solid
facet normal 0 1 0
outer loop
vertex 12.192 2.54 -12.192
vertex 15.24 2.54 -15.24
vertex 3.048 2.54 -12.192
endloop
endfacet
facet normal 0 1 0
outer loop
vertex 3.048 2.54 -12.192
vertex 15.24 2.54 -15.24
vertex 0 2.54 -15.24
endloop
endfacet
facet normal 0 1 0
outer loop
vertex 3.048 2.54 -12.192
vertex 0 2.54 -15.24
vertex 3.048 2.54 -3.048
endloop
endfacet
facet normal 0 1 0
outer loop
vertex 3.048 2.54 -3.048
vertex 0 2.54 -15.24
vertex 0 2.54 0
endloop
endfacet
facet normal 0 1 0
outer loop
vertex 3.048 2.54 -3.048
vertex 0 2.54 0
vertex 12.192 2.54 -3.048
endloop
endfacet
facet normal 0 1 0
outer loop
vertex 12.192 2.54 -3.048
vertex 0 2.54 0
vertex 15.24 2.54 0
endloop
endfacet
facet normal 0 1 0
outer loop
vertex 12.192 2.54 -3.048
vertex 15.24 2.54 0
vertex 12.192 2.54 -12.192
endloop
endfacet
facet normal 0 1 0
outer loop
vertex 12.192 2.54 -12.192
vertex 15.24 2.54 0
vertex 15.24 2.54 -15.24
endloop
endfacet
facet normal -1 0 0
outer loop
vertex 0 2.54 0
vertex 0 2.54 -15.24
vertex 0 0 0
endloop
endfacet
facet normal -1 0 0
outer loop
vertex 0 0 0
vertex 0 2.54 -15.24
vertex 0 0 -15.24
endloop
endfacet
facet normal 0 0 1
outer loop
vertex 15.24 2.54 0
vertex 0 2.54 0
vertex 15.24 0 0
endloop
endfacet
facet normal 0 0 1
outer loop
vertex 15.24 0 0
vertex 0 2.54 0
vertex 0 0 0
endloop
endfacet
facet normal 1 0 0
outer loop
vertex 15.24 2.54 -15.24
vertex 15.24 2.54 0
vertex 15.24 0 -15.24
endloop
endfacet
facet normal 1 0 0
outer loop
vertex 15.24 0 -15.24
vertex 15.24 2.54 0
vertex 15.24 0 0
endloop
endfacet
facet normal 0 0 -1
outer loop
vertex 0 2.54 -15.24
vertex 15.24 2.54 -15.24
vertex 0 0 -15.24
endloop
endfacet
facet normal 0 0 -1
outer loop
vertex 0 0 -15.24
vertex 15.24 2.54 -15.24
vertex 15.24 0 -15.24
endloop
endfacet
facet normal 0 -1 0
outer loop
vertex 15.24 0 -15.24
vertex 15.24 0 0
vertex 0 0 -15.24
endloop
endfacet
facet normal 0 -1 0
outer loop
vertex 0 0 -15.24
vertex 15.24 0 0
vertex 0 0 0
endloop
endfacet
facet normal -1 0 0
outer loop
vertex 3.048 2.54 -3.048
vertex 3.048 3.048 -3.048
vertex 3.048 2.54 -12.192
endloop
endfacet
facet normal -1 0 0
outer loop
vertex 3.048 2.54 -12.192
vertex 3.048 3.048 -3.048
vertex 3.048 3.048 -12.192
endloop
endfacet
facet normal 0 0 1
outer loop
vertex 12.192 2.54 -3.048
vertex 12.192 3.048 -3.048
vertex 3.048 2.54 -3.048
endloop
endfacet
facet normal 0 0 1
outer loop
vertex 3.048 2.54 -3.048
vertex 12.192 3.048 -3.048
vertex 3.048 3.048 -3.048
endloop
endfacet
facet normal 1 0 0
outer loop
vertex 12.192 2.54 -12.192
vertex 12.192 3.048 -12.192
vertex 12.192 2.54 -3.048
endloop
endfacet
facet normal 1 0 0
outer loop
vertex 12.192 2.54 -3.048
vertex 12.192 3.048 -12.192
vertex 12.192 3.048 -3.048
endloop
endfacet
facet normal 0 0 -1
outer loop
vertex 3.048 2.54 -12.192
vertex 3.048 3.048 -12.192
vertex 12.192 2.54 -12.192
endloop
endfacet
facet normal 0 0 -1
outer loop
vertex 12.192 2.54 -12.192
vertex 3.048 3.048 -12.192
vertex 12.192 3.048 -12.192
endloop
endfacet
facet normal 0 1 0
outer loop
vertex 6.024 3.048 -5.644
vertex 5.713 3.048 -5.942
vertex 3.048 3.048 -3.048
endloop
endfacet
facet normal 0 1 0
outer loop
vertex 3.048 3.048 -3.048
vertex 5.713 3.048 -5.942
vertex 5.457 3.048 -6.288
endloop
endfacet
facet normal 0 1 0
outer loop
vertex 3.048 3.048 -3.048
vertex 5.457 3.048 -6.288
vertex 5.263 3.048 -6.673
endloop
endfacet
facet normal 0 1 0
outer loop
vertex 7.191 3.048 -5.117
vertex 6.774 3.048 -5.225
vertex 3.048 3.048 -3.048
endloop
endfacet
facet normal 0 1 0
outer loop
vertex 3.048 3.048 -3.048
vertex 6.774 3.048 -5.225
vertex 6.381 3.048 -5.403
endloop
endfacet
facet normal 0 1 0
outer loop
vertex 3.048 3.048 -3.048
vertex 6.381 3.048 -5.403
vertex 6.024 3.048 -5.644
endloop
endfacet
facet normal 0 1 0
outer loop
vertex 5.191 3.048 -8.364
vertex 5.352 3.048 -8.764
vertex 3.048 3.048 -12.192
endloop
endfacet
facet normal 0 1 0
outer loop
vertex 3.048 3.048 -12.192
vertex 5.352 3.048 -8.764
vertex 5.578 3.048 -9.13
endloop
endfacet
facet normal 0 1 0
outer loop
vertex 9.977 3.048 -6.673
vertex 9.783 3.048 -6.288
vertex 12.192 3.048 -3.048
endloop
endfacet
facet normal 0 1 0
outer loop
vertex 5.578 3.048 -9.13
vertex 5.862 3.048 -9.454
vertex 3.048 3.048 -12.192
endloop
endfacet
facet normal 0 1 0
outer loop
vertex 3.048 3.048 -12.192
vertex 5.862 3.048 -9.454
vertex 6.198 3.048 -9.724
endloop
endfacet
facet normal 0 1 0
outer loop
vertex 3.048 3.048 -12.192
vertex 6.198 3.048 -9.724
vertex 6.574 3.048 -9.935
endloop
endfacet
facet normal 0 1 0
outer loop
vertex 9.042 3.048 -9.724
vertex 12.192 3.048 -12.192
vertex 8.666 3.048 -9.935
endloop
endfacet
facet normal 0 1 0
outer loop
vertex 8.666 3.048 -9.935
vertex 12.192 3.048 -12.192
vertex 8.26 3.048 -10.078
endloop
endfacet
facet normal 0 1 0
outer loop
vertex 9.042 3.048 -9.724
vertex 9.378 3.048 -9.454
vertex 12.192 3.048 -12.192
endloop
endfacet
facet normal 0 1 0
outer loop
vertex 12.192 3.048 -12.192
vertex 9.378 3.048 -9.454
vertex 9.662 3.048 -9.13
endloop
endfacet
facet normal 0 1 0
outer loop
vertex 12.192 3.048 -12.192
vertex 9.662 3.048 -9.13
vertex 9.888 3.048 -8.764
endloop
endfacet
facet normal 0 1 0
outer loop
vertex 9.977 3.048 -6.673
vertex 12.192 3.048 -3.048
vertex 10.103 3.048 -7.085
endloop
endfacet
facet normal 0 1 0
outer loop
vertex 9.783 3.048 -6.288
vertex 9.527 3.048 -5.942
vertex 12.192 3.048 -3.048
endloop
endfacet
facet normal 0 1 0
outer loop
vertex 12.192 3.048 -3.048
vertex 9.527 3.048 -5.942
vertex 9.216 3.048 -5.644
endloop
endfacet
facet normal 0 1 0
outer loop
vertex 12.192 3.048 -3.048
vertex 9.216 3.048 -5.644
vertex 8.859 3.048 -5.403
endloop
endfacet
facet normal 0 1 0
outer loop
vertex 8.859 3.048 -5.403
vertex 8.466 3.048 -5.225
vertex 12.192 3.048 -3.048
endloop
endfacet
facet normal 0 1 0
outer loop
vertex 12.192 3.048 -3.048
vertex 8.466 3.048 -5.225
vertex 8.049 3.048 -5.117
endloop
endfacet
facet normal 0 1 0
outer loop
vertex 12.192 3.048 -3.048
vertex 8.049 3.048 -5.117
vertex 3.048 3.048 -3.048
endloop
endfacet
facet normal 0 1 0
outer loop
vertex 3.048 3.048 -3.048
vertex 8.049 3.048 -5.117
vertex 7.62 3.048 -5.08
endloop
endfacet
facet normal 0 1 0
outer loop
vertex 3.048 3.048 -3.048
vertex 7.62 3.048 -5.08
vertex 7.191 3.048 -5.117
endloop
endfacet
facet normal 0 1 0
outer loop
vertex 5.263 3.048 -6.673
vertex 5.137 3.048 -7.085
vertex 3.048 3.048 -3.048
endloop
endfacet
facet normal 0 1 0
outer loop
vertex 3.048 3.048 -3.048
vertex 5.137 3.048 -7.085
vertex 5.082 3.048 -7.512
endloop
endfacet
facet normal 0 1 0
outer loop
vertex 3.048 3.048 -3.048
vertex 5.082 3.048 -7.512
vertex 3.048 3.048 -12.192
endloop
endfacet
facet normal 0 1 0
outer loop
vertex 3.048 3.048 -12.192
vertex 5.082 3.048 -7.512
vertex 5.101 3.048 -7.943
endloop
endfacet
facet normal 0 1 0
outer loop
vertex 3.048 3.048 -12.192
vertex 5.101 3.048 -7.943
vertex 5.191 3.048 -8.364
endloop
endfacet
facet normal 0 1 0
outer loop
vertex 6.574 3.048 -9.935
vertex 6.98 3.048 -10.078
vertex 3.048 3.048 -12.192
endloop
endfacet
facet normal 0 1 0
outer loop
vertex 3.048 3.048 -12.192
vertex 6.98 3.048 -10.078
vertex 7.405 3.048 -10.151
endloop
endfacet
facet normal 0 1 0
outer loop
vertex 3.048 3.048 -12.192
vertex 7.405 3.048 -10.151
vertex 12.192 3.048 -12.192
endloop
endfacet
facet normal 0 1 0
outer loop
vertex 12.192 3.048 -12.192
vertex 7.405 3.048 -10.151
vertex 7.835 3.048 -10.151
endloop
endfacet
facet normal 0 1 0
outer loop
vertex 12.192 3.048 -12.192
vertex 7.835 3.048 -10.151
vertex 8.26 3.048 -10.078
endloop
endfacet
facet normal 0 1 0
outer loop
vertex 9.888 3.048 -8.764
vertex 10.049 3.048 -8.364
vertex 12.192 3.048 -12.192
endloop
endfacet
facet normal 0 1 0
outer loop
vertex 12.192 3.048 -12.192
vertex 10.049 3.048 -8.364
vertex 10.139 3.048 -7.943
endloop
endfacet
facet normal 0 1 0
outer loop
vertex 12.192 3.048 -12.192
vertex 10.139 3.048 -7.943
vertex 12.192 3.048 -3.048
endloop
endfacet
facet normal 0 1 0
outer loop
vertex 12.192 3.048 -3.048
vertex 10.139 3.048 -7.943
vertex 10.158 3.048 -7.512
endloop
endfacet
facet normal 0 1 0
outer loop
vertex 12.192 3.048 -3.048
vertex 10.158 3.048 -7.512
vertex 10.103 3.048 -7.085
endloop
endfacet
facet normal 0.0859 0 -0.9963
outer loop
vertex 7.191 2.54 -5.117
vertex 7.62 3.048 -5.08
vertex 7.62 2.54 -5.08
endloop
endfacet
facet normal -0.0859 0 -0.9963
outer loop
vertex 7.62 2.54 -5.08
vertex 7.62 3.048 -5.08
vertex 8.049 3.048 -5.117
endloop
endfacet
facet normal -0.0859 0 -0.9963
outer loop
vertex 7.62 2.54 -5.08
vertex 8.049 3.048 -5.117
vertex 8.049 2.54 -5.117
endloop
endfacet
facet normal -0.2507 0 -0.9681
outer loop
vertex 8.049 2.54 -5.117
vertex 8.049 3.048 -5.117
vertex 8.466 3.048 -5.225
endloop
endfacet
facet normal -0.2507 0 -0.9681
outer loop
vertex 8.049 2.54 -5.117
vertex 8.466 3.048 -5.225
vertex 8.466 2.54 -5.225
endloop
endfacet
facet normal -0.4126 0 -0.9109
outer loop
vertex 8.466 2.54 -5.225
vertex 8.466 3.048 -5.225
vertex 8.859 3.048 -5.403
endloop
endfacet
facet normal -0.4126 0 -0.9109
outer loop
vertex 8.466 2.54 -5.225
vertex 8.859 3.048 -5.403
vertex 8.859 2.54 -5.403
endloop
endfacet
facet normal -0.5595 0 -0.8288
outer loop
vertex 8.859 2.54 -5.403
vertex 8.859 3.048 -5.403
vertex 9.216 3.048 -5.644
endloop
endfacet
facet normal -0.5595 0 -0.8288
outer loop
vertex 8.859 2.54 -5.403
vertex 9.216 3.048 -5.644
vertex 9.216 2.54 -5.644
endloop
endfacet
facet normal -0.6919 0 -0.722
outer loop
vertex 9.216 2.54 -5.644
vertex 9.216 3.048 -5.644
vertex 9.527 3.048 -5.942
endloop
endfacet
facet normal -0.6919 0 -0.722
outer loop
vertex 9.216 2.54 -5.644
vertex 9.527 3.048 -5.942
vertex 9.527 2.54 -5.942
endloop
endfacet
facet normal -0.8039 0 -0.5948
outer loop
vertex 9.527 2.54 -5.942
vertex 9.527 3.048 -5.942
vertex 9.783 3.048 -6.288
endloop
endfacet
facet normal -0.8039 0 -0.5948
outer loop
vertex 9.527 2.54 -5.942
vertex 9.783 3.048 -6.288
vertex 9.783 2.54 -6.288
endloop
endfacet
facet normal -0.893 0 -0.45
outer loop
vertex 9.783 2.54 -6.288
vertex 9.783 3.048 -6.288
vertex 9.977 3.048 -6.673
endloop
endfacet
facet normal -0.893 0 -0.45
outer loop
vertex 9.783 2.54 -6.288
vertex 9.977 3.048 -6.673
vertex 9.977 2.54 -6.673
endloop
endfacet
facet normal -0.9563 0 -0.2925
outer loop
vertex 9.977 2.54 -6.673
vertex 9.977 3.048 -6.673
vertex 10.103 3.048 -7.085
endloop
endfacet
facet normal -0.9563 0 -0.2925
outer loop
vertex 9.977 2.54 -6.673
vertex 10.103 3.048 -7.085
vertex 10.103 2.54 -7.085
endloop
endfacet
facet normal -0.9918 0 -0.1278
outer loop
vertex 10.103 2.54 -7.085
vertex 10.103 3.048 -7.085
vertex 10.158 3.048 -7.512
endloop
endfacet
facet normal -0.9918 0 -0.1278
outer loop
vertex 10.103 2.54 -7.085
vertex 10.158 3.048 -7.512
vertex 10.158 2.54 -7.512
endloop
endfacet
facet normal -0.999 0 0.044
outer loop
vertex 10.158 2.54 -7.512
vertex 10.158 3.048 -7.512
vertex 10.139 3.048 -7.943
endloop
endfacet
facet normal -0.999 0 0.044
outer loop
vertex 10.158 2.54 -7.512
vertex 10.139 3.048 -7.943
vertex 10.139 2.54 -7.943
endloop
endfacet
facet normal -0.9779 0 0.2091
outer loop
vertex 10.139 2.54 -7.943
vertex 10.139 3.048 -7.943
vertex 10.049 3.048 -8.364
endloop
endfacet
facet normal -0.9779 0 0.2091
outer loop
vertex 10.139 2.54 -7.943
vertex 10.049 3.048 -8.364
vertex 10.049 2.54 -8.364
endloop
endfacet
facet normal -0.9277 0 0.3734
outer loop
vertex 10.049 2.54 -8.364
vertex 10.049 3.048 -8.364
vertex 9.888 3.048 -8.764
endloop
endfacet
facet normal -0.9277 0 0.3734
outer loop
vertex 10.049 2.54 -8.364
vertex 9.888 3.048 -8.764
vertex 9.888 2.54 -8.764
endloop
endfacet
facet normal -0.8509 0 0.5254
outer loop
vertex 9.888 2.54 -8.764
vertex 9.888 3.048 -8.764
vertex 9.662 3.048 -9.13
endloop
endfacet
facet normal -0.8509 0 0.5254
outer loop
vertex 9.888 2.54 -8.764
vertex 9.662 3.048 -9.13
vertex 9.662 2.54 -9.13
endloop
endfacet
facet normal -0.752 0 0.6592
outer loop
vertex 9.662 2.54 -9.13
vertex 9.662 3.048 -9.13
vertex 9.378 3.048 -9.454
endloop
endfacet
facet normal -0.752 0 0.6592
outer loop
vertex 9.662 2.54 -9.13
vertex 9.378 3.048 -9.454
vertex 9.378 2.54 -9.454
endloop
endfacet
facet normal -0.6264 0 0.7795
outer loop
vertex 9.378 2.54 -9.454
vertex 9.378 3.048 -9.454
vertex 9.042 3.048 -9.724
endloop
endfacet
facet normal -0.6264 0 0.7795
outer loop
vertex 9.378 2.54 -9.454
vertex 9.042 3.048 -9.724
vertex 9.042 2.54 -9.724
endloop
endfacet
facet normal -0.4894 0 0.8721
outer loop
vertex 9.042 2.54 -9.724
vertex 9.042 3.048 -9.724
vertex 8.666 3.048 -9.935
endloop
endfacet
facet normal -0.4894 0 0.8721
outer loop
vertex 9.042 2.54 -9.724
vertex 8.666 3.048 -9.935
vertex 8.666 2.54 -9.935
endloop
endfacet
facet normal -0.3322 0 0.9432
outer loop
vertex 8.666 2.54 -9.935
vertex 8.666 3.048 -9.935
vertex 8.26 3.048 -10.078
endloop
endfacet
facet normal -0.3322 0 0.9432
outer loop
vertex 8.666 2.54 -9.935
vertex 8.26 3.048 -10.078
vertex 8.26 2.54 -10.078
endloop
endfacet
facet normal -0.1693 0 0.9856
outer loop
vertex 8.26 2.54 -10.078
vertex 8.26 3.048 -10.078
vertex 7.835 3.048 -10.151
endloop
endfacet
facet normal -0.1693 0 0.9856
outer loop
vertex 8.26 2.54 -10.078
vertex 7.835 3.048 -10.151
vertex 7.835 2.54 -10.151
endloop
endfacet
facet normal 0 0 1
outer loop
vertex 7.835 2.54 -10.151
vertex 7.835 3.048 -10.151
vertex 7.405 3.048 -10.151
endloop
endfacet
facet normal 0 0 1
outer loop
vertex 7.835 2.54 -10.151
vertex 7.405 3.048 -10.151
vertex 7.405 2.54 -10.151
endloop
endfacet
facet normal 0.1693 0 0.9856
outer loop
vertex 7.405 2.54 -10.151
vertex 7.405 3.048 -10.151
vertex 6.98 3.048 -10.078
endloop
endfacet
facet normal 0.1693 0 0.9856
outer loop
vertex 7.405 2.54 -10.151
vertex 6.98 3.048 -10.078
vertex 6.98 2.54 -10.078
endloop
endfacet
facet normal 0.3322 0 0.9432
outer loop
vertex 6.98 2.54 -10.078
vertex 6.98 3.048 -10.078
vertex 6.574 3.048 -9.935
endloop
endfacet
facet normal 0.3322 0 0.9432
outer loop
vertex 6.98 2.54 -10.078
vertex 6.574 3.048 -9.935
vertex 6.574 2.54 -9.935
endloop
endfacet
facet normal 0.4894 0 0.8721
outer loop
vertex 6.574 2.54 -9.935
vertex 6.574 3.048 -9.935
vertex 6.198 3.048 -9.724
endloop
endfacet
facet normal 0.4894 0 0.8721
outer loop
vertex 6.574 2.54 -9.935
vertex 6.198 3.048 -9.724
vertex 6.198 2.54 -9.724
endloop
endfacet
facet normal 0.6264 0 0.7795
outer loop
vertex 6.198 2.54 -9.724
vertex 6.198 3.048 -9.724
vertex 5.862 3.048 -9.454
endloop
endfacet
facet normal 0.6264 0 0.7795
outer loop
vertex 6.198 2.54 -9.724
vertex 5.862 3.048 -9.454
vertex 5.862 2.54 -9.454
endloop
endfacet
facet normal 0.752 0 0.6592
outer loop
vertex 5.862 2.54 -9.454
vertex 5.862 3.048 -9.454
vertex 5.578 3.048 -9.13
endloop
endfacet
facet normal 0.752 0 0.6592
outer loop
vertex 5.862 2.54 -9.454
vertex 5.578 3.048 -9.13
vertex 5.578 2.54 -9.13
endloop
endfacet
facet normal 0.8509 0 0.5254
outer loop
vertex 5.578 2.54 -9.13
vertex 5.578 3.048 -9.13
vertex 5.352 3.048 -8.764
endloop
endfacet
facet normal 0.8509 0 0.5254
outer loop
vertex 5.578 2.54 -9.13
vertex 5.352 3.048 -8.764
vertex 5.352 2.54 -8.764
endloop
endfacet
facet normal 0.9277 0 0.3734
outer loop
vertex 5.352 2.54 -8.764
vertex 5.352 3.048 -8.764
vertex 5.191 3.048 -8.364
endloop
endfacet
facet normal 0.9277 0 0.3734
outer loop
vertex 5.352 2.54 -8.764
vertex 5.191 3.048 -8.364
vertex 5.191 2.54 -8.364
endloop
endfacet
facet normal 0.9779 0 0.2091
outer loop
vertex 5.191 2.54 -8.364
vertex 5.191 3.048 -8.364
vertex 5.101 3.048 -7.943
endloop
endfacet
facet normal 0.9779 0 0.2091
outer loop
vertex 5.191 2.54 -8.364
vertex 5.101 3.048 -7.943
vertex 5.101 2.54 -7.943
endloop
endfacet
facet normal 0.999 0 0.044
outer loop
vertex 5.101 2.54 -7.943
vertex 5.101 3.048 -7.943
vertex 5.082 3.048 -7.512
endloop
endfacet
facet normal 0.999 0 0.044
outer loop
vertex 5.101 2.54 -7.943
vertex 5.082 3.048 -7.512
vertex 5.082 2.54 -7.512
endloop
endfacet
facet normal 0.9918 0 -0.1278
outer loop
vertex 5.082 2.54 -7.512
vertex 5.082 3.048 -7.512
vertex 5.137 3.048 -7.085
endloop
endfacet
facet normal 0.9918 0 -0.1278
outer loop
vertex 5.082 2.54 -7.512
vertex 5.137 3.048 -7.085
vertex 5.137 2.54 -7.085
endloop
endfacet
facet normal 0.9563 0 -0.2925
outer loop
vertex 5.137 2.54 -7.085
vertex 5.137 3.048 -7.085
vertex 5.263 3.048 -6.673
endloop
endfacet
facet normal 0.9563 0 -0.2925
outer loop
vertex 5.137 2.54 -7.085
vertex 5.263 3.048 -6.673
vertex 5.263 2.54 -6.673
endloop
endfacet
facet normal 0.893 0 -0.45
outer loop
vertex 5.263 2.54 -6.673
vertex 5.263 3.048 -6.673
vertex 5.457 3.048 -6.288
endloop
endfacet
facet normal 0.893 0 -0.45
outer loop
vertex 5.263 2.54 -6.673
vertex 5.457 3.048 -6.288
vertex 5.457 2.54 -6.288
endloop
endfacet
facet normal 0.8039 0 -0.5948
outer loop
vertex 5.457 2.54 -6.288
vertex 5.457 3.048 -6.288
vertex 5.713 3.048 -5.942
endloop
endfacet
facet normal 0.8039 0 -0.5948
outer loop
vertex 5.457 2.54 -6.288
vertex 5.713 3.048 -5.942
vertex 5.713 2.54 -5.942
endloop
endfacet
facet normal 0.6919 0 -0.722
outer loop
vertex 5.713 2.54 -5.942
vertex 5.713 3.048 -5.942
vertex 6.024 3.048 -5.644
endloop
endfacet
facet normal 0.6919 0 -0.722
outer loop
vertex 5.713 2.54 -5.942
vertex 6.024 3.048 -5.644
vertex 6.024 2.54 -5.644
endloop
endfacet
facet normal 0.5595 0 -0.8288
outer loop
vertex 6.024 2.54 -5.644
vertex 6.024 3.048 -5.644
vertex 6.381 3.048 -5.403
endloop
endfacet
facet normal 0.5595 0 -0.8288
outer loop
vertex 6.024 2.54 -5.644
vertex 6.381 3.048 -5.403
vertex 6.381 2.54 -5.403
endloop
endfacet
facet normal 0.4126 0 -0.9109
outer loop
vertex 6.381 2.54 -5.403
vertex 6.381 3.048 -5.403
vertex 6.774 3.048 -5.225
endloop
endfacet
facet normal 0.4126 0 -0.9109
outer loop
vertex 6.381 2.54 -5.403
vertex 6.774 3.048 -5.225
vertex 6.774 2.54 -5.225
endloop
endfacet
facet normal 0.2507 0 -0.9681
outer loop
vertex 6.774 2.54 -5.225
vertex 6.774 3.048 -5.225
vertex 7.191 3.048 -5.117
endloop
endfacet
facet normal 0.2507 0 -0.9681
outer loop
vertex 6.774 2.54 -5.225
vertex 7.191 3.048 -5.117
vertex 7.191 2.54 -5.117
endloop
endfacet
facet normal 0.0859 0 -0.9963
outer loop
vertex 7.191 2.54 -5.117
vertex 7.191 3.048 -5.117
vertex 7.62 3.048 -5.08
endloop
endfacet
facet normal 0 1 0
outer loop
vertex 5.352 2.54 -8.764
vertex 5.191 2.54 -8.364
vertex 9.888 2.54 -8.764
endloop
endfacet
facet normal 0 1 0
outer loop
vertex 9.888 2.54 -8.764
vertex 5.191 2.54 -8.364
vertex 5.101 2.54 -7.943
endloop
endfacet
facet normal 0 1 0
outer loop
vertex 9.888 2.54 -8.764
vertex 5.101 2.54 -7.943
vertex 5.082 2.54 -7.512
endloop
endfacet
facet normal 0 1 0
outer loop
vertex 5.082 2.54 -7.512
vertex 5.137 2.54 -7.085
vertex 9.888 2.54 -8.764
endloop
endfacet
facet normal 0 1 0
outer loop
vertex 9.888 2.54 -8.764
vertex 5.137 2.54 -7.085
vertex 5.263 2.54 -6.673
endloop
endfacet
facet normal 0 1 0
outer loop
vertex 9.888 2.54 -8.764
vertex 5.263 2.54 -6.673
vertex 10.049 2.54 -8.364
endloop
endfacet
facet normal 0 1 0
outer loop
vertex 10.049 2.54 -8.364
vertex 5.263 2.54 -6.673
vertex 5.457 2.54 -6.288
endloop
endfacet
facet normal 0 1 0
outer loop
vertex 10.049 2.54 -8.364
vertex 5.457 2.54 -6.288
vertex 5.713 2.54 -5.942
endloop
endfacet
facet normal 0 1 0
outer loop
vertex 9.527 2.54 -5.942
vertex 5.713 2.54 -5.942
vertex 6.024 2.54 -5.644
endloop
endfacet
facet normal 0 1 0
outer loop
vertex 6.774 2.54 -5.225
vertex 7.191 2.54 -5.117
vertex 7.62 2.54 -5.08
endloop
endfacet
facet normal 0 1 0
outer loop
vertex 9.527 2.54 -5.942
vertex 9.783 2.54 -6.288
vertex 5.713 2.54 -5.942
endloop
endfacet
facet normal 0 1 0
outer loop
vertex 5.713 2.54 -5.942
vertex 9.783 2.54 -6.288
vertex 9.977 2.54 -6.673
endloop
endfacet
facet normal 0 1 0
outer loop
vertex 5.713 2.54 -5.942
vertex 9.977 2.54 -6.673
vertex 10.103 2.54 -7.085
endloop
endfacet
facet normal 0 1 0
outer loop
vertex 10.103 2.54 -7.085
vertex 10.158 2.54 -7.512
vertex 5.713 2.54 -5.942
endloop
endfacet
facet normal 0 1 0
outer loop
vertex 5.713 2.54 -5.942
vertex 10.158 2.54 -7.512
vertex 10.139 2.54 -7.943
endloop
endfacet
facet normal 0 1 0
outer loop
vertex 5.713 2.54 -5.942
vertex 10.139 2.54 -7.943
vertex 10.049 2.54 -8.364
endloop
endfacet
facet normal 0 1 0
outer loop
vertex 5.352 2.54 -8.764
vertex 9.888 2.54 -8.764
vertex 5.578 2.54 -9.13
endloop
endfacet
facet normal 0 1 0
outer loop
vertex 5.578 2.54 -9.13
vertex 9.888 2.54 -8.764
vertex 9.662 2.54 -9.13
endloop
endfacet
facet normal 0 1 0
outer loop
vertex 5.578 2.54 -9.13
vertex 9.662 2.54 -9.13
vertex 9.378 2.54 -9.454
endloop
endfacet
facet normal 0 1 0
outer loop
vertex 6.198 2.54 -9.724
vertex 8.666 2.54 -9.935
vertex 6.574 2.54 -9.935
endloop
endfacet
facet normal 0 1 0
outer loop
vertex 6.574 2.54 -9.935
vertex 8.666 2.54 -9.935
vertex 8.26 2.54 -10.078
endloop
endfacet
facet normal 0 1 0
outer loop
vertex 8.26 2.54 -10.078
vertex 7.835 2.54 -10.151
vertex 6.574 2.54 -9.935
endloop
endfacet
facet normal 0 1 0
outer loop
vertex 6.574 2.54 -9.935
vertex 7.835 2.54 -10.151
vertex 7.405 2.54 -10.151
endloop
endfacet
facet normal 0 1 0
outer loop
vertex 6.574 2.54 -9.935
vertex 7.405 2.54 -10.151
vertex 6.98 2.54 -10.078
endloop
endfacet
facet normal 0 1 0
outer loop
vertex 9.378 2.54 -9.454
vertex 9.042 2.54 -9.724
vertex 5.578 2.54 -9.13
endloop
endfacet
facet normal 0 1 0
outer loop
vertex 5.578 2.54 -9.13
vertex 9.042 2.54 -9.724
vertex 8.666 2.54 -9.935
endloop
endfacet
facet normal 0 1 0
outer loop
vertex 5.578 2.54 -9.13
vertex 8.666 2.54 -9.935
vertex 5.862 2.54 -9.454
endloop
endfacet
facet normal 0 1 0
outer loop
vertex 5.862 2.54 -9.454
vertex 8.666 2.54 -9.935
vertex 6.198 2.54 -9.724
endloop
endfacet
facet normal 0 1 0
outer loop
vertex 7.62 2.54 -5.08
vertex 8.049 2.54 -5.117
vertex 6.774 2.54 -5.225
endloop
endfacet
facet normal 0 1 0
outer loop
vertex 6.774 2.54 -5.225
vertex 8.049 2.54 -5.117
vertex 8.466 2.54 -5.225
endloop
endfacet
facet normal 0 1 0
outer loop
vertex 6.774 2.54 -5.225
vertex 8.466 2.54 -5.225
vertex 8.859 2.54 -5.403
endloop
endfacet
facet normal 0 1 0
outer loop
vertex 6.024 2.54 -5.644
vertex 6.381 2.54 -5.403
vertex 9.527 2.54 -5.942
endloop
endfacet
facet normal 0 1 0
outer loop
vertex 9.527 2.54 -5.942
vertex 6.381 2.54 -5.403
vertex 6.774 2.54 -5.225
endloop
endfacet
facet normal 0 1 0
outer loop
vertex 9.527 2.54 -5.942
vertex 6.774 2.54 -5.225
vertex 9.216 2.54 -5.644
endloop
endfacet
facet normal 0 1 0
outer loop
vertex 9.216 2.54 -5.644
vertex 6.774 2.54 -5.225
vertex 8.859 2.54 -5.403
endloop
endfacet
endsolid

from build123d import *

# Parameters (mm, degrees)
SKETCH1_W           = 15.24
SKETCH1_H           = 15.24
BOSS_EXTRUDE1_DEPTH = 2.54
SKETCH2_W           = 9.144
SKETCH2_H           = 9.144
BOSS_EXTRUDE2_DEPTH = 3.048
SKETCH3_R           = 2.54
CUT_EXTRUDE1_DEPTH  = 0.508


with BuildPart() as part:
    # Sketch1 → Boss-Extrude1 (new body)
    with BuildSketch(Plane(origin=(0, 0, 0), x_dir=(1, 0, 0), z_dir=(0, 1, 0))):
        with Locations((7.62, 7.62)):
            Rectangle(SKETCH1_W, SKETCH1_H)
    extrude(amount=BOSS_EXTRUDE1_DEPTH)

    # Sketch2 → Boss-Extrude2 (add)
    with BuildSketch(Plane(origin=(0, 0, 0), x_dir=(1, 0, 0), z_dir=(0, 1, 0))):
        with Locations((7.62, 7.62)):
            Rectangle(SKETCH2_W, SKETCH2_H)
    extrude(amount=BOSS_EXTRUDE2_DEPTH)

    # Sketch3 → Cut-Extrude1 (cut)
    with BuildSketch(Plane(origin=(0, 3.048, 0), x_dir=(1, 0, 0), z_dir=(0, 1, 0))):
        with Locations((7.62, 7.62)):
            Circle(SKETCH3_R)
    extrude(amount=-CUT_EXTRUDE1_DEPTH, mode=Mode.SUBTRACT)


solid = part.part
